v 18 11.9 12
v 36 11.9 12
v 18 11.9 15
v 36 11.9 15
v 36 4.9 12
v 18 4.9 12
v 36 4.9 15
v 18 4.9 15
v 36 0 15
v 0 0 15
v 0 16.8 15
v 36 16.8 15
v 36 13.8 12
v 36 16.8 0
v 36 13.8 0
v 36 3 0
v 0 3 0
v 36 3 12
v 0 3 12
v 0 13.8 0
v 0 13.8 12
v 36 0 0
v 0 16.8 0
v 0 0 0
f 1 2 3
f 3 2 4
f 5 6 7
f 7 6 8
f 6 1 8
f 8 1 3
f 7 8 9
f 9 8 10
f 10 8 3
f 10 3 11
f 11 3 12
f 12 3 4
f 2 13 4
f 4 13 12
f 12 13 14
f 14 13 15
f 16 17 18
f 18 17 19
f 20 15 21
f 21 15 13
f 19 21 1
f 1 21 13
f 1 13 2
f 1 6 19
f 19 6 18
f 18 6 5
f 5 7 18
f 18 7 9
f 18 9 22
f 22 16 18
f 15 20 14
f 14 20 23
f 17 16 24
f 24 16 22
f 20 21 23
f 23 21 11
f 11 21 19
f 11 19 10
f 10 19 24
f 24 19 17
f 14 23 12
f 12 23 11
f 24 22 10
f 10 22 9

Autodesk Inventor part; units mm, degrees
ref_plane "YZ Plane" through (0, 0, 0) normal (1, 0, 0) x (0, 1, 0)
ref_plane "XZ Plane" through (0, 0, 0) normal (0, 1, 0) x (-1, 0, 0)
ref_plane "XY Plane" through (0, 0, 0) normal (0, 0, 1) x (1, 0, 0)
sketch "sketch" plane through (0, 0, 0) normal (0, 0, 1) x (1, 0, 0)
  line L0 (-7.2, 0) -> (43.2, 0) construction
  line L1 (0, -3.36) -> (0, 20.16) construction
  line L2 (3, 13.8) -> (33, 13.8)
  line L3 (33, 13.8) -> (33, 3)
  line L4 (33, 3) -> (3, 3)
  line L5 (3, 3) -> (3, 13.8)
  line L6 (18, 11.9) -> (33, 11.9)
  line L7 (33, 11.9) -> (33, 4.9)
  line L8 (33, 4.9) -> (18, 4.9)
  line L9 (18, 4.9) -> (18, 11.9)
  line L10 (36, 16.8) -> (0, 16.8)
  line L11 (0, 16.8) -> (0, 0)
  line L12 (0, 0) -> (36, 0)
  line L13 (36, 0) -> (36, 16.8)
  line L14 (33, 4.9) -> (36, 4.9)
  line L15 (33, 11.9) -> (36, 11.9)
  line L16 (0, 3) -> (3, 3)
  line L17 (0, 13.8) -> (3, 13.8)
  line L18 (33, 3) -> (36, 3)
  line L19 (33, 13.8) -> (36, 13.8)
  dimension "d0" = 10.8
  dimension "d2" = 7
  dimension "d3" = 1.9
  dimension "d4" = 15
  dimension "d5" = 30
  dimension "d6" = 3
extrude "돌출1" add sketch "sketch" along normal blind 15
extrude "floor" cut sketch "sketch" along normal blind 12 contours L2 L3 L6 L9 L8 L4 L5 | L5 L16 L11 L17 | L19 L13 L15 L3 | L3 L14 L13 L18
extrude "fix" cut sketch "sketch" along normal up to surface (15 mm away) contours L15 L13 L14 L3 | L3 L8 L9 L6
equation "\"d3\" = -0.5 * d2 + 0.5 * d0"
properties part number "button_fix"
